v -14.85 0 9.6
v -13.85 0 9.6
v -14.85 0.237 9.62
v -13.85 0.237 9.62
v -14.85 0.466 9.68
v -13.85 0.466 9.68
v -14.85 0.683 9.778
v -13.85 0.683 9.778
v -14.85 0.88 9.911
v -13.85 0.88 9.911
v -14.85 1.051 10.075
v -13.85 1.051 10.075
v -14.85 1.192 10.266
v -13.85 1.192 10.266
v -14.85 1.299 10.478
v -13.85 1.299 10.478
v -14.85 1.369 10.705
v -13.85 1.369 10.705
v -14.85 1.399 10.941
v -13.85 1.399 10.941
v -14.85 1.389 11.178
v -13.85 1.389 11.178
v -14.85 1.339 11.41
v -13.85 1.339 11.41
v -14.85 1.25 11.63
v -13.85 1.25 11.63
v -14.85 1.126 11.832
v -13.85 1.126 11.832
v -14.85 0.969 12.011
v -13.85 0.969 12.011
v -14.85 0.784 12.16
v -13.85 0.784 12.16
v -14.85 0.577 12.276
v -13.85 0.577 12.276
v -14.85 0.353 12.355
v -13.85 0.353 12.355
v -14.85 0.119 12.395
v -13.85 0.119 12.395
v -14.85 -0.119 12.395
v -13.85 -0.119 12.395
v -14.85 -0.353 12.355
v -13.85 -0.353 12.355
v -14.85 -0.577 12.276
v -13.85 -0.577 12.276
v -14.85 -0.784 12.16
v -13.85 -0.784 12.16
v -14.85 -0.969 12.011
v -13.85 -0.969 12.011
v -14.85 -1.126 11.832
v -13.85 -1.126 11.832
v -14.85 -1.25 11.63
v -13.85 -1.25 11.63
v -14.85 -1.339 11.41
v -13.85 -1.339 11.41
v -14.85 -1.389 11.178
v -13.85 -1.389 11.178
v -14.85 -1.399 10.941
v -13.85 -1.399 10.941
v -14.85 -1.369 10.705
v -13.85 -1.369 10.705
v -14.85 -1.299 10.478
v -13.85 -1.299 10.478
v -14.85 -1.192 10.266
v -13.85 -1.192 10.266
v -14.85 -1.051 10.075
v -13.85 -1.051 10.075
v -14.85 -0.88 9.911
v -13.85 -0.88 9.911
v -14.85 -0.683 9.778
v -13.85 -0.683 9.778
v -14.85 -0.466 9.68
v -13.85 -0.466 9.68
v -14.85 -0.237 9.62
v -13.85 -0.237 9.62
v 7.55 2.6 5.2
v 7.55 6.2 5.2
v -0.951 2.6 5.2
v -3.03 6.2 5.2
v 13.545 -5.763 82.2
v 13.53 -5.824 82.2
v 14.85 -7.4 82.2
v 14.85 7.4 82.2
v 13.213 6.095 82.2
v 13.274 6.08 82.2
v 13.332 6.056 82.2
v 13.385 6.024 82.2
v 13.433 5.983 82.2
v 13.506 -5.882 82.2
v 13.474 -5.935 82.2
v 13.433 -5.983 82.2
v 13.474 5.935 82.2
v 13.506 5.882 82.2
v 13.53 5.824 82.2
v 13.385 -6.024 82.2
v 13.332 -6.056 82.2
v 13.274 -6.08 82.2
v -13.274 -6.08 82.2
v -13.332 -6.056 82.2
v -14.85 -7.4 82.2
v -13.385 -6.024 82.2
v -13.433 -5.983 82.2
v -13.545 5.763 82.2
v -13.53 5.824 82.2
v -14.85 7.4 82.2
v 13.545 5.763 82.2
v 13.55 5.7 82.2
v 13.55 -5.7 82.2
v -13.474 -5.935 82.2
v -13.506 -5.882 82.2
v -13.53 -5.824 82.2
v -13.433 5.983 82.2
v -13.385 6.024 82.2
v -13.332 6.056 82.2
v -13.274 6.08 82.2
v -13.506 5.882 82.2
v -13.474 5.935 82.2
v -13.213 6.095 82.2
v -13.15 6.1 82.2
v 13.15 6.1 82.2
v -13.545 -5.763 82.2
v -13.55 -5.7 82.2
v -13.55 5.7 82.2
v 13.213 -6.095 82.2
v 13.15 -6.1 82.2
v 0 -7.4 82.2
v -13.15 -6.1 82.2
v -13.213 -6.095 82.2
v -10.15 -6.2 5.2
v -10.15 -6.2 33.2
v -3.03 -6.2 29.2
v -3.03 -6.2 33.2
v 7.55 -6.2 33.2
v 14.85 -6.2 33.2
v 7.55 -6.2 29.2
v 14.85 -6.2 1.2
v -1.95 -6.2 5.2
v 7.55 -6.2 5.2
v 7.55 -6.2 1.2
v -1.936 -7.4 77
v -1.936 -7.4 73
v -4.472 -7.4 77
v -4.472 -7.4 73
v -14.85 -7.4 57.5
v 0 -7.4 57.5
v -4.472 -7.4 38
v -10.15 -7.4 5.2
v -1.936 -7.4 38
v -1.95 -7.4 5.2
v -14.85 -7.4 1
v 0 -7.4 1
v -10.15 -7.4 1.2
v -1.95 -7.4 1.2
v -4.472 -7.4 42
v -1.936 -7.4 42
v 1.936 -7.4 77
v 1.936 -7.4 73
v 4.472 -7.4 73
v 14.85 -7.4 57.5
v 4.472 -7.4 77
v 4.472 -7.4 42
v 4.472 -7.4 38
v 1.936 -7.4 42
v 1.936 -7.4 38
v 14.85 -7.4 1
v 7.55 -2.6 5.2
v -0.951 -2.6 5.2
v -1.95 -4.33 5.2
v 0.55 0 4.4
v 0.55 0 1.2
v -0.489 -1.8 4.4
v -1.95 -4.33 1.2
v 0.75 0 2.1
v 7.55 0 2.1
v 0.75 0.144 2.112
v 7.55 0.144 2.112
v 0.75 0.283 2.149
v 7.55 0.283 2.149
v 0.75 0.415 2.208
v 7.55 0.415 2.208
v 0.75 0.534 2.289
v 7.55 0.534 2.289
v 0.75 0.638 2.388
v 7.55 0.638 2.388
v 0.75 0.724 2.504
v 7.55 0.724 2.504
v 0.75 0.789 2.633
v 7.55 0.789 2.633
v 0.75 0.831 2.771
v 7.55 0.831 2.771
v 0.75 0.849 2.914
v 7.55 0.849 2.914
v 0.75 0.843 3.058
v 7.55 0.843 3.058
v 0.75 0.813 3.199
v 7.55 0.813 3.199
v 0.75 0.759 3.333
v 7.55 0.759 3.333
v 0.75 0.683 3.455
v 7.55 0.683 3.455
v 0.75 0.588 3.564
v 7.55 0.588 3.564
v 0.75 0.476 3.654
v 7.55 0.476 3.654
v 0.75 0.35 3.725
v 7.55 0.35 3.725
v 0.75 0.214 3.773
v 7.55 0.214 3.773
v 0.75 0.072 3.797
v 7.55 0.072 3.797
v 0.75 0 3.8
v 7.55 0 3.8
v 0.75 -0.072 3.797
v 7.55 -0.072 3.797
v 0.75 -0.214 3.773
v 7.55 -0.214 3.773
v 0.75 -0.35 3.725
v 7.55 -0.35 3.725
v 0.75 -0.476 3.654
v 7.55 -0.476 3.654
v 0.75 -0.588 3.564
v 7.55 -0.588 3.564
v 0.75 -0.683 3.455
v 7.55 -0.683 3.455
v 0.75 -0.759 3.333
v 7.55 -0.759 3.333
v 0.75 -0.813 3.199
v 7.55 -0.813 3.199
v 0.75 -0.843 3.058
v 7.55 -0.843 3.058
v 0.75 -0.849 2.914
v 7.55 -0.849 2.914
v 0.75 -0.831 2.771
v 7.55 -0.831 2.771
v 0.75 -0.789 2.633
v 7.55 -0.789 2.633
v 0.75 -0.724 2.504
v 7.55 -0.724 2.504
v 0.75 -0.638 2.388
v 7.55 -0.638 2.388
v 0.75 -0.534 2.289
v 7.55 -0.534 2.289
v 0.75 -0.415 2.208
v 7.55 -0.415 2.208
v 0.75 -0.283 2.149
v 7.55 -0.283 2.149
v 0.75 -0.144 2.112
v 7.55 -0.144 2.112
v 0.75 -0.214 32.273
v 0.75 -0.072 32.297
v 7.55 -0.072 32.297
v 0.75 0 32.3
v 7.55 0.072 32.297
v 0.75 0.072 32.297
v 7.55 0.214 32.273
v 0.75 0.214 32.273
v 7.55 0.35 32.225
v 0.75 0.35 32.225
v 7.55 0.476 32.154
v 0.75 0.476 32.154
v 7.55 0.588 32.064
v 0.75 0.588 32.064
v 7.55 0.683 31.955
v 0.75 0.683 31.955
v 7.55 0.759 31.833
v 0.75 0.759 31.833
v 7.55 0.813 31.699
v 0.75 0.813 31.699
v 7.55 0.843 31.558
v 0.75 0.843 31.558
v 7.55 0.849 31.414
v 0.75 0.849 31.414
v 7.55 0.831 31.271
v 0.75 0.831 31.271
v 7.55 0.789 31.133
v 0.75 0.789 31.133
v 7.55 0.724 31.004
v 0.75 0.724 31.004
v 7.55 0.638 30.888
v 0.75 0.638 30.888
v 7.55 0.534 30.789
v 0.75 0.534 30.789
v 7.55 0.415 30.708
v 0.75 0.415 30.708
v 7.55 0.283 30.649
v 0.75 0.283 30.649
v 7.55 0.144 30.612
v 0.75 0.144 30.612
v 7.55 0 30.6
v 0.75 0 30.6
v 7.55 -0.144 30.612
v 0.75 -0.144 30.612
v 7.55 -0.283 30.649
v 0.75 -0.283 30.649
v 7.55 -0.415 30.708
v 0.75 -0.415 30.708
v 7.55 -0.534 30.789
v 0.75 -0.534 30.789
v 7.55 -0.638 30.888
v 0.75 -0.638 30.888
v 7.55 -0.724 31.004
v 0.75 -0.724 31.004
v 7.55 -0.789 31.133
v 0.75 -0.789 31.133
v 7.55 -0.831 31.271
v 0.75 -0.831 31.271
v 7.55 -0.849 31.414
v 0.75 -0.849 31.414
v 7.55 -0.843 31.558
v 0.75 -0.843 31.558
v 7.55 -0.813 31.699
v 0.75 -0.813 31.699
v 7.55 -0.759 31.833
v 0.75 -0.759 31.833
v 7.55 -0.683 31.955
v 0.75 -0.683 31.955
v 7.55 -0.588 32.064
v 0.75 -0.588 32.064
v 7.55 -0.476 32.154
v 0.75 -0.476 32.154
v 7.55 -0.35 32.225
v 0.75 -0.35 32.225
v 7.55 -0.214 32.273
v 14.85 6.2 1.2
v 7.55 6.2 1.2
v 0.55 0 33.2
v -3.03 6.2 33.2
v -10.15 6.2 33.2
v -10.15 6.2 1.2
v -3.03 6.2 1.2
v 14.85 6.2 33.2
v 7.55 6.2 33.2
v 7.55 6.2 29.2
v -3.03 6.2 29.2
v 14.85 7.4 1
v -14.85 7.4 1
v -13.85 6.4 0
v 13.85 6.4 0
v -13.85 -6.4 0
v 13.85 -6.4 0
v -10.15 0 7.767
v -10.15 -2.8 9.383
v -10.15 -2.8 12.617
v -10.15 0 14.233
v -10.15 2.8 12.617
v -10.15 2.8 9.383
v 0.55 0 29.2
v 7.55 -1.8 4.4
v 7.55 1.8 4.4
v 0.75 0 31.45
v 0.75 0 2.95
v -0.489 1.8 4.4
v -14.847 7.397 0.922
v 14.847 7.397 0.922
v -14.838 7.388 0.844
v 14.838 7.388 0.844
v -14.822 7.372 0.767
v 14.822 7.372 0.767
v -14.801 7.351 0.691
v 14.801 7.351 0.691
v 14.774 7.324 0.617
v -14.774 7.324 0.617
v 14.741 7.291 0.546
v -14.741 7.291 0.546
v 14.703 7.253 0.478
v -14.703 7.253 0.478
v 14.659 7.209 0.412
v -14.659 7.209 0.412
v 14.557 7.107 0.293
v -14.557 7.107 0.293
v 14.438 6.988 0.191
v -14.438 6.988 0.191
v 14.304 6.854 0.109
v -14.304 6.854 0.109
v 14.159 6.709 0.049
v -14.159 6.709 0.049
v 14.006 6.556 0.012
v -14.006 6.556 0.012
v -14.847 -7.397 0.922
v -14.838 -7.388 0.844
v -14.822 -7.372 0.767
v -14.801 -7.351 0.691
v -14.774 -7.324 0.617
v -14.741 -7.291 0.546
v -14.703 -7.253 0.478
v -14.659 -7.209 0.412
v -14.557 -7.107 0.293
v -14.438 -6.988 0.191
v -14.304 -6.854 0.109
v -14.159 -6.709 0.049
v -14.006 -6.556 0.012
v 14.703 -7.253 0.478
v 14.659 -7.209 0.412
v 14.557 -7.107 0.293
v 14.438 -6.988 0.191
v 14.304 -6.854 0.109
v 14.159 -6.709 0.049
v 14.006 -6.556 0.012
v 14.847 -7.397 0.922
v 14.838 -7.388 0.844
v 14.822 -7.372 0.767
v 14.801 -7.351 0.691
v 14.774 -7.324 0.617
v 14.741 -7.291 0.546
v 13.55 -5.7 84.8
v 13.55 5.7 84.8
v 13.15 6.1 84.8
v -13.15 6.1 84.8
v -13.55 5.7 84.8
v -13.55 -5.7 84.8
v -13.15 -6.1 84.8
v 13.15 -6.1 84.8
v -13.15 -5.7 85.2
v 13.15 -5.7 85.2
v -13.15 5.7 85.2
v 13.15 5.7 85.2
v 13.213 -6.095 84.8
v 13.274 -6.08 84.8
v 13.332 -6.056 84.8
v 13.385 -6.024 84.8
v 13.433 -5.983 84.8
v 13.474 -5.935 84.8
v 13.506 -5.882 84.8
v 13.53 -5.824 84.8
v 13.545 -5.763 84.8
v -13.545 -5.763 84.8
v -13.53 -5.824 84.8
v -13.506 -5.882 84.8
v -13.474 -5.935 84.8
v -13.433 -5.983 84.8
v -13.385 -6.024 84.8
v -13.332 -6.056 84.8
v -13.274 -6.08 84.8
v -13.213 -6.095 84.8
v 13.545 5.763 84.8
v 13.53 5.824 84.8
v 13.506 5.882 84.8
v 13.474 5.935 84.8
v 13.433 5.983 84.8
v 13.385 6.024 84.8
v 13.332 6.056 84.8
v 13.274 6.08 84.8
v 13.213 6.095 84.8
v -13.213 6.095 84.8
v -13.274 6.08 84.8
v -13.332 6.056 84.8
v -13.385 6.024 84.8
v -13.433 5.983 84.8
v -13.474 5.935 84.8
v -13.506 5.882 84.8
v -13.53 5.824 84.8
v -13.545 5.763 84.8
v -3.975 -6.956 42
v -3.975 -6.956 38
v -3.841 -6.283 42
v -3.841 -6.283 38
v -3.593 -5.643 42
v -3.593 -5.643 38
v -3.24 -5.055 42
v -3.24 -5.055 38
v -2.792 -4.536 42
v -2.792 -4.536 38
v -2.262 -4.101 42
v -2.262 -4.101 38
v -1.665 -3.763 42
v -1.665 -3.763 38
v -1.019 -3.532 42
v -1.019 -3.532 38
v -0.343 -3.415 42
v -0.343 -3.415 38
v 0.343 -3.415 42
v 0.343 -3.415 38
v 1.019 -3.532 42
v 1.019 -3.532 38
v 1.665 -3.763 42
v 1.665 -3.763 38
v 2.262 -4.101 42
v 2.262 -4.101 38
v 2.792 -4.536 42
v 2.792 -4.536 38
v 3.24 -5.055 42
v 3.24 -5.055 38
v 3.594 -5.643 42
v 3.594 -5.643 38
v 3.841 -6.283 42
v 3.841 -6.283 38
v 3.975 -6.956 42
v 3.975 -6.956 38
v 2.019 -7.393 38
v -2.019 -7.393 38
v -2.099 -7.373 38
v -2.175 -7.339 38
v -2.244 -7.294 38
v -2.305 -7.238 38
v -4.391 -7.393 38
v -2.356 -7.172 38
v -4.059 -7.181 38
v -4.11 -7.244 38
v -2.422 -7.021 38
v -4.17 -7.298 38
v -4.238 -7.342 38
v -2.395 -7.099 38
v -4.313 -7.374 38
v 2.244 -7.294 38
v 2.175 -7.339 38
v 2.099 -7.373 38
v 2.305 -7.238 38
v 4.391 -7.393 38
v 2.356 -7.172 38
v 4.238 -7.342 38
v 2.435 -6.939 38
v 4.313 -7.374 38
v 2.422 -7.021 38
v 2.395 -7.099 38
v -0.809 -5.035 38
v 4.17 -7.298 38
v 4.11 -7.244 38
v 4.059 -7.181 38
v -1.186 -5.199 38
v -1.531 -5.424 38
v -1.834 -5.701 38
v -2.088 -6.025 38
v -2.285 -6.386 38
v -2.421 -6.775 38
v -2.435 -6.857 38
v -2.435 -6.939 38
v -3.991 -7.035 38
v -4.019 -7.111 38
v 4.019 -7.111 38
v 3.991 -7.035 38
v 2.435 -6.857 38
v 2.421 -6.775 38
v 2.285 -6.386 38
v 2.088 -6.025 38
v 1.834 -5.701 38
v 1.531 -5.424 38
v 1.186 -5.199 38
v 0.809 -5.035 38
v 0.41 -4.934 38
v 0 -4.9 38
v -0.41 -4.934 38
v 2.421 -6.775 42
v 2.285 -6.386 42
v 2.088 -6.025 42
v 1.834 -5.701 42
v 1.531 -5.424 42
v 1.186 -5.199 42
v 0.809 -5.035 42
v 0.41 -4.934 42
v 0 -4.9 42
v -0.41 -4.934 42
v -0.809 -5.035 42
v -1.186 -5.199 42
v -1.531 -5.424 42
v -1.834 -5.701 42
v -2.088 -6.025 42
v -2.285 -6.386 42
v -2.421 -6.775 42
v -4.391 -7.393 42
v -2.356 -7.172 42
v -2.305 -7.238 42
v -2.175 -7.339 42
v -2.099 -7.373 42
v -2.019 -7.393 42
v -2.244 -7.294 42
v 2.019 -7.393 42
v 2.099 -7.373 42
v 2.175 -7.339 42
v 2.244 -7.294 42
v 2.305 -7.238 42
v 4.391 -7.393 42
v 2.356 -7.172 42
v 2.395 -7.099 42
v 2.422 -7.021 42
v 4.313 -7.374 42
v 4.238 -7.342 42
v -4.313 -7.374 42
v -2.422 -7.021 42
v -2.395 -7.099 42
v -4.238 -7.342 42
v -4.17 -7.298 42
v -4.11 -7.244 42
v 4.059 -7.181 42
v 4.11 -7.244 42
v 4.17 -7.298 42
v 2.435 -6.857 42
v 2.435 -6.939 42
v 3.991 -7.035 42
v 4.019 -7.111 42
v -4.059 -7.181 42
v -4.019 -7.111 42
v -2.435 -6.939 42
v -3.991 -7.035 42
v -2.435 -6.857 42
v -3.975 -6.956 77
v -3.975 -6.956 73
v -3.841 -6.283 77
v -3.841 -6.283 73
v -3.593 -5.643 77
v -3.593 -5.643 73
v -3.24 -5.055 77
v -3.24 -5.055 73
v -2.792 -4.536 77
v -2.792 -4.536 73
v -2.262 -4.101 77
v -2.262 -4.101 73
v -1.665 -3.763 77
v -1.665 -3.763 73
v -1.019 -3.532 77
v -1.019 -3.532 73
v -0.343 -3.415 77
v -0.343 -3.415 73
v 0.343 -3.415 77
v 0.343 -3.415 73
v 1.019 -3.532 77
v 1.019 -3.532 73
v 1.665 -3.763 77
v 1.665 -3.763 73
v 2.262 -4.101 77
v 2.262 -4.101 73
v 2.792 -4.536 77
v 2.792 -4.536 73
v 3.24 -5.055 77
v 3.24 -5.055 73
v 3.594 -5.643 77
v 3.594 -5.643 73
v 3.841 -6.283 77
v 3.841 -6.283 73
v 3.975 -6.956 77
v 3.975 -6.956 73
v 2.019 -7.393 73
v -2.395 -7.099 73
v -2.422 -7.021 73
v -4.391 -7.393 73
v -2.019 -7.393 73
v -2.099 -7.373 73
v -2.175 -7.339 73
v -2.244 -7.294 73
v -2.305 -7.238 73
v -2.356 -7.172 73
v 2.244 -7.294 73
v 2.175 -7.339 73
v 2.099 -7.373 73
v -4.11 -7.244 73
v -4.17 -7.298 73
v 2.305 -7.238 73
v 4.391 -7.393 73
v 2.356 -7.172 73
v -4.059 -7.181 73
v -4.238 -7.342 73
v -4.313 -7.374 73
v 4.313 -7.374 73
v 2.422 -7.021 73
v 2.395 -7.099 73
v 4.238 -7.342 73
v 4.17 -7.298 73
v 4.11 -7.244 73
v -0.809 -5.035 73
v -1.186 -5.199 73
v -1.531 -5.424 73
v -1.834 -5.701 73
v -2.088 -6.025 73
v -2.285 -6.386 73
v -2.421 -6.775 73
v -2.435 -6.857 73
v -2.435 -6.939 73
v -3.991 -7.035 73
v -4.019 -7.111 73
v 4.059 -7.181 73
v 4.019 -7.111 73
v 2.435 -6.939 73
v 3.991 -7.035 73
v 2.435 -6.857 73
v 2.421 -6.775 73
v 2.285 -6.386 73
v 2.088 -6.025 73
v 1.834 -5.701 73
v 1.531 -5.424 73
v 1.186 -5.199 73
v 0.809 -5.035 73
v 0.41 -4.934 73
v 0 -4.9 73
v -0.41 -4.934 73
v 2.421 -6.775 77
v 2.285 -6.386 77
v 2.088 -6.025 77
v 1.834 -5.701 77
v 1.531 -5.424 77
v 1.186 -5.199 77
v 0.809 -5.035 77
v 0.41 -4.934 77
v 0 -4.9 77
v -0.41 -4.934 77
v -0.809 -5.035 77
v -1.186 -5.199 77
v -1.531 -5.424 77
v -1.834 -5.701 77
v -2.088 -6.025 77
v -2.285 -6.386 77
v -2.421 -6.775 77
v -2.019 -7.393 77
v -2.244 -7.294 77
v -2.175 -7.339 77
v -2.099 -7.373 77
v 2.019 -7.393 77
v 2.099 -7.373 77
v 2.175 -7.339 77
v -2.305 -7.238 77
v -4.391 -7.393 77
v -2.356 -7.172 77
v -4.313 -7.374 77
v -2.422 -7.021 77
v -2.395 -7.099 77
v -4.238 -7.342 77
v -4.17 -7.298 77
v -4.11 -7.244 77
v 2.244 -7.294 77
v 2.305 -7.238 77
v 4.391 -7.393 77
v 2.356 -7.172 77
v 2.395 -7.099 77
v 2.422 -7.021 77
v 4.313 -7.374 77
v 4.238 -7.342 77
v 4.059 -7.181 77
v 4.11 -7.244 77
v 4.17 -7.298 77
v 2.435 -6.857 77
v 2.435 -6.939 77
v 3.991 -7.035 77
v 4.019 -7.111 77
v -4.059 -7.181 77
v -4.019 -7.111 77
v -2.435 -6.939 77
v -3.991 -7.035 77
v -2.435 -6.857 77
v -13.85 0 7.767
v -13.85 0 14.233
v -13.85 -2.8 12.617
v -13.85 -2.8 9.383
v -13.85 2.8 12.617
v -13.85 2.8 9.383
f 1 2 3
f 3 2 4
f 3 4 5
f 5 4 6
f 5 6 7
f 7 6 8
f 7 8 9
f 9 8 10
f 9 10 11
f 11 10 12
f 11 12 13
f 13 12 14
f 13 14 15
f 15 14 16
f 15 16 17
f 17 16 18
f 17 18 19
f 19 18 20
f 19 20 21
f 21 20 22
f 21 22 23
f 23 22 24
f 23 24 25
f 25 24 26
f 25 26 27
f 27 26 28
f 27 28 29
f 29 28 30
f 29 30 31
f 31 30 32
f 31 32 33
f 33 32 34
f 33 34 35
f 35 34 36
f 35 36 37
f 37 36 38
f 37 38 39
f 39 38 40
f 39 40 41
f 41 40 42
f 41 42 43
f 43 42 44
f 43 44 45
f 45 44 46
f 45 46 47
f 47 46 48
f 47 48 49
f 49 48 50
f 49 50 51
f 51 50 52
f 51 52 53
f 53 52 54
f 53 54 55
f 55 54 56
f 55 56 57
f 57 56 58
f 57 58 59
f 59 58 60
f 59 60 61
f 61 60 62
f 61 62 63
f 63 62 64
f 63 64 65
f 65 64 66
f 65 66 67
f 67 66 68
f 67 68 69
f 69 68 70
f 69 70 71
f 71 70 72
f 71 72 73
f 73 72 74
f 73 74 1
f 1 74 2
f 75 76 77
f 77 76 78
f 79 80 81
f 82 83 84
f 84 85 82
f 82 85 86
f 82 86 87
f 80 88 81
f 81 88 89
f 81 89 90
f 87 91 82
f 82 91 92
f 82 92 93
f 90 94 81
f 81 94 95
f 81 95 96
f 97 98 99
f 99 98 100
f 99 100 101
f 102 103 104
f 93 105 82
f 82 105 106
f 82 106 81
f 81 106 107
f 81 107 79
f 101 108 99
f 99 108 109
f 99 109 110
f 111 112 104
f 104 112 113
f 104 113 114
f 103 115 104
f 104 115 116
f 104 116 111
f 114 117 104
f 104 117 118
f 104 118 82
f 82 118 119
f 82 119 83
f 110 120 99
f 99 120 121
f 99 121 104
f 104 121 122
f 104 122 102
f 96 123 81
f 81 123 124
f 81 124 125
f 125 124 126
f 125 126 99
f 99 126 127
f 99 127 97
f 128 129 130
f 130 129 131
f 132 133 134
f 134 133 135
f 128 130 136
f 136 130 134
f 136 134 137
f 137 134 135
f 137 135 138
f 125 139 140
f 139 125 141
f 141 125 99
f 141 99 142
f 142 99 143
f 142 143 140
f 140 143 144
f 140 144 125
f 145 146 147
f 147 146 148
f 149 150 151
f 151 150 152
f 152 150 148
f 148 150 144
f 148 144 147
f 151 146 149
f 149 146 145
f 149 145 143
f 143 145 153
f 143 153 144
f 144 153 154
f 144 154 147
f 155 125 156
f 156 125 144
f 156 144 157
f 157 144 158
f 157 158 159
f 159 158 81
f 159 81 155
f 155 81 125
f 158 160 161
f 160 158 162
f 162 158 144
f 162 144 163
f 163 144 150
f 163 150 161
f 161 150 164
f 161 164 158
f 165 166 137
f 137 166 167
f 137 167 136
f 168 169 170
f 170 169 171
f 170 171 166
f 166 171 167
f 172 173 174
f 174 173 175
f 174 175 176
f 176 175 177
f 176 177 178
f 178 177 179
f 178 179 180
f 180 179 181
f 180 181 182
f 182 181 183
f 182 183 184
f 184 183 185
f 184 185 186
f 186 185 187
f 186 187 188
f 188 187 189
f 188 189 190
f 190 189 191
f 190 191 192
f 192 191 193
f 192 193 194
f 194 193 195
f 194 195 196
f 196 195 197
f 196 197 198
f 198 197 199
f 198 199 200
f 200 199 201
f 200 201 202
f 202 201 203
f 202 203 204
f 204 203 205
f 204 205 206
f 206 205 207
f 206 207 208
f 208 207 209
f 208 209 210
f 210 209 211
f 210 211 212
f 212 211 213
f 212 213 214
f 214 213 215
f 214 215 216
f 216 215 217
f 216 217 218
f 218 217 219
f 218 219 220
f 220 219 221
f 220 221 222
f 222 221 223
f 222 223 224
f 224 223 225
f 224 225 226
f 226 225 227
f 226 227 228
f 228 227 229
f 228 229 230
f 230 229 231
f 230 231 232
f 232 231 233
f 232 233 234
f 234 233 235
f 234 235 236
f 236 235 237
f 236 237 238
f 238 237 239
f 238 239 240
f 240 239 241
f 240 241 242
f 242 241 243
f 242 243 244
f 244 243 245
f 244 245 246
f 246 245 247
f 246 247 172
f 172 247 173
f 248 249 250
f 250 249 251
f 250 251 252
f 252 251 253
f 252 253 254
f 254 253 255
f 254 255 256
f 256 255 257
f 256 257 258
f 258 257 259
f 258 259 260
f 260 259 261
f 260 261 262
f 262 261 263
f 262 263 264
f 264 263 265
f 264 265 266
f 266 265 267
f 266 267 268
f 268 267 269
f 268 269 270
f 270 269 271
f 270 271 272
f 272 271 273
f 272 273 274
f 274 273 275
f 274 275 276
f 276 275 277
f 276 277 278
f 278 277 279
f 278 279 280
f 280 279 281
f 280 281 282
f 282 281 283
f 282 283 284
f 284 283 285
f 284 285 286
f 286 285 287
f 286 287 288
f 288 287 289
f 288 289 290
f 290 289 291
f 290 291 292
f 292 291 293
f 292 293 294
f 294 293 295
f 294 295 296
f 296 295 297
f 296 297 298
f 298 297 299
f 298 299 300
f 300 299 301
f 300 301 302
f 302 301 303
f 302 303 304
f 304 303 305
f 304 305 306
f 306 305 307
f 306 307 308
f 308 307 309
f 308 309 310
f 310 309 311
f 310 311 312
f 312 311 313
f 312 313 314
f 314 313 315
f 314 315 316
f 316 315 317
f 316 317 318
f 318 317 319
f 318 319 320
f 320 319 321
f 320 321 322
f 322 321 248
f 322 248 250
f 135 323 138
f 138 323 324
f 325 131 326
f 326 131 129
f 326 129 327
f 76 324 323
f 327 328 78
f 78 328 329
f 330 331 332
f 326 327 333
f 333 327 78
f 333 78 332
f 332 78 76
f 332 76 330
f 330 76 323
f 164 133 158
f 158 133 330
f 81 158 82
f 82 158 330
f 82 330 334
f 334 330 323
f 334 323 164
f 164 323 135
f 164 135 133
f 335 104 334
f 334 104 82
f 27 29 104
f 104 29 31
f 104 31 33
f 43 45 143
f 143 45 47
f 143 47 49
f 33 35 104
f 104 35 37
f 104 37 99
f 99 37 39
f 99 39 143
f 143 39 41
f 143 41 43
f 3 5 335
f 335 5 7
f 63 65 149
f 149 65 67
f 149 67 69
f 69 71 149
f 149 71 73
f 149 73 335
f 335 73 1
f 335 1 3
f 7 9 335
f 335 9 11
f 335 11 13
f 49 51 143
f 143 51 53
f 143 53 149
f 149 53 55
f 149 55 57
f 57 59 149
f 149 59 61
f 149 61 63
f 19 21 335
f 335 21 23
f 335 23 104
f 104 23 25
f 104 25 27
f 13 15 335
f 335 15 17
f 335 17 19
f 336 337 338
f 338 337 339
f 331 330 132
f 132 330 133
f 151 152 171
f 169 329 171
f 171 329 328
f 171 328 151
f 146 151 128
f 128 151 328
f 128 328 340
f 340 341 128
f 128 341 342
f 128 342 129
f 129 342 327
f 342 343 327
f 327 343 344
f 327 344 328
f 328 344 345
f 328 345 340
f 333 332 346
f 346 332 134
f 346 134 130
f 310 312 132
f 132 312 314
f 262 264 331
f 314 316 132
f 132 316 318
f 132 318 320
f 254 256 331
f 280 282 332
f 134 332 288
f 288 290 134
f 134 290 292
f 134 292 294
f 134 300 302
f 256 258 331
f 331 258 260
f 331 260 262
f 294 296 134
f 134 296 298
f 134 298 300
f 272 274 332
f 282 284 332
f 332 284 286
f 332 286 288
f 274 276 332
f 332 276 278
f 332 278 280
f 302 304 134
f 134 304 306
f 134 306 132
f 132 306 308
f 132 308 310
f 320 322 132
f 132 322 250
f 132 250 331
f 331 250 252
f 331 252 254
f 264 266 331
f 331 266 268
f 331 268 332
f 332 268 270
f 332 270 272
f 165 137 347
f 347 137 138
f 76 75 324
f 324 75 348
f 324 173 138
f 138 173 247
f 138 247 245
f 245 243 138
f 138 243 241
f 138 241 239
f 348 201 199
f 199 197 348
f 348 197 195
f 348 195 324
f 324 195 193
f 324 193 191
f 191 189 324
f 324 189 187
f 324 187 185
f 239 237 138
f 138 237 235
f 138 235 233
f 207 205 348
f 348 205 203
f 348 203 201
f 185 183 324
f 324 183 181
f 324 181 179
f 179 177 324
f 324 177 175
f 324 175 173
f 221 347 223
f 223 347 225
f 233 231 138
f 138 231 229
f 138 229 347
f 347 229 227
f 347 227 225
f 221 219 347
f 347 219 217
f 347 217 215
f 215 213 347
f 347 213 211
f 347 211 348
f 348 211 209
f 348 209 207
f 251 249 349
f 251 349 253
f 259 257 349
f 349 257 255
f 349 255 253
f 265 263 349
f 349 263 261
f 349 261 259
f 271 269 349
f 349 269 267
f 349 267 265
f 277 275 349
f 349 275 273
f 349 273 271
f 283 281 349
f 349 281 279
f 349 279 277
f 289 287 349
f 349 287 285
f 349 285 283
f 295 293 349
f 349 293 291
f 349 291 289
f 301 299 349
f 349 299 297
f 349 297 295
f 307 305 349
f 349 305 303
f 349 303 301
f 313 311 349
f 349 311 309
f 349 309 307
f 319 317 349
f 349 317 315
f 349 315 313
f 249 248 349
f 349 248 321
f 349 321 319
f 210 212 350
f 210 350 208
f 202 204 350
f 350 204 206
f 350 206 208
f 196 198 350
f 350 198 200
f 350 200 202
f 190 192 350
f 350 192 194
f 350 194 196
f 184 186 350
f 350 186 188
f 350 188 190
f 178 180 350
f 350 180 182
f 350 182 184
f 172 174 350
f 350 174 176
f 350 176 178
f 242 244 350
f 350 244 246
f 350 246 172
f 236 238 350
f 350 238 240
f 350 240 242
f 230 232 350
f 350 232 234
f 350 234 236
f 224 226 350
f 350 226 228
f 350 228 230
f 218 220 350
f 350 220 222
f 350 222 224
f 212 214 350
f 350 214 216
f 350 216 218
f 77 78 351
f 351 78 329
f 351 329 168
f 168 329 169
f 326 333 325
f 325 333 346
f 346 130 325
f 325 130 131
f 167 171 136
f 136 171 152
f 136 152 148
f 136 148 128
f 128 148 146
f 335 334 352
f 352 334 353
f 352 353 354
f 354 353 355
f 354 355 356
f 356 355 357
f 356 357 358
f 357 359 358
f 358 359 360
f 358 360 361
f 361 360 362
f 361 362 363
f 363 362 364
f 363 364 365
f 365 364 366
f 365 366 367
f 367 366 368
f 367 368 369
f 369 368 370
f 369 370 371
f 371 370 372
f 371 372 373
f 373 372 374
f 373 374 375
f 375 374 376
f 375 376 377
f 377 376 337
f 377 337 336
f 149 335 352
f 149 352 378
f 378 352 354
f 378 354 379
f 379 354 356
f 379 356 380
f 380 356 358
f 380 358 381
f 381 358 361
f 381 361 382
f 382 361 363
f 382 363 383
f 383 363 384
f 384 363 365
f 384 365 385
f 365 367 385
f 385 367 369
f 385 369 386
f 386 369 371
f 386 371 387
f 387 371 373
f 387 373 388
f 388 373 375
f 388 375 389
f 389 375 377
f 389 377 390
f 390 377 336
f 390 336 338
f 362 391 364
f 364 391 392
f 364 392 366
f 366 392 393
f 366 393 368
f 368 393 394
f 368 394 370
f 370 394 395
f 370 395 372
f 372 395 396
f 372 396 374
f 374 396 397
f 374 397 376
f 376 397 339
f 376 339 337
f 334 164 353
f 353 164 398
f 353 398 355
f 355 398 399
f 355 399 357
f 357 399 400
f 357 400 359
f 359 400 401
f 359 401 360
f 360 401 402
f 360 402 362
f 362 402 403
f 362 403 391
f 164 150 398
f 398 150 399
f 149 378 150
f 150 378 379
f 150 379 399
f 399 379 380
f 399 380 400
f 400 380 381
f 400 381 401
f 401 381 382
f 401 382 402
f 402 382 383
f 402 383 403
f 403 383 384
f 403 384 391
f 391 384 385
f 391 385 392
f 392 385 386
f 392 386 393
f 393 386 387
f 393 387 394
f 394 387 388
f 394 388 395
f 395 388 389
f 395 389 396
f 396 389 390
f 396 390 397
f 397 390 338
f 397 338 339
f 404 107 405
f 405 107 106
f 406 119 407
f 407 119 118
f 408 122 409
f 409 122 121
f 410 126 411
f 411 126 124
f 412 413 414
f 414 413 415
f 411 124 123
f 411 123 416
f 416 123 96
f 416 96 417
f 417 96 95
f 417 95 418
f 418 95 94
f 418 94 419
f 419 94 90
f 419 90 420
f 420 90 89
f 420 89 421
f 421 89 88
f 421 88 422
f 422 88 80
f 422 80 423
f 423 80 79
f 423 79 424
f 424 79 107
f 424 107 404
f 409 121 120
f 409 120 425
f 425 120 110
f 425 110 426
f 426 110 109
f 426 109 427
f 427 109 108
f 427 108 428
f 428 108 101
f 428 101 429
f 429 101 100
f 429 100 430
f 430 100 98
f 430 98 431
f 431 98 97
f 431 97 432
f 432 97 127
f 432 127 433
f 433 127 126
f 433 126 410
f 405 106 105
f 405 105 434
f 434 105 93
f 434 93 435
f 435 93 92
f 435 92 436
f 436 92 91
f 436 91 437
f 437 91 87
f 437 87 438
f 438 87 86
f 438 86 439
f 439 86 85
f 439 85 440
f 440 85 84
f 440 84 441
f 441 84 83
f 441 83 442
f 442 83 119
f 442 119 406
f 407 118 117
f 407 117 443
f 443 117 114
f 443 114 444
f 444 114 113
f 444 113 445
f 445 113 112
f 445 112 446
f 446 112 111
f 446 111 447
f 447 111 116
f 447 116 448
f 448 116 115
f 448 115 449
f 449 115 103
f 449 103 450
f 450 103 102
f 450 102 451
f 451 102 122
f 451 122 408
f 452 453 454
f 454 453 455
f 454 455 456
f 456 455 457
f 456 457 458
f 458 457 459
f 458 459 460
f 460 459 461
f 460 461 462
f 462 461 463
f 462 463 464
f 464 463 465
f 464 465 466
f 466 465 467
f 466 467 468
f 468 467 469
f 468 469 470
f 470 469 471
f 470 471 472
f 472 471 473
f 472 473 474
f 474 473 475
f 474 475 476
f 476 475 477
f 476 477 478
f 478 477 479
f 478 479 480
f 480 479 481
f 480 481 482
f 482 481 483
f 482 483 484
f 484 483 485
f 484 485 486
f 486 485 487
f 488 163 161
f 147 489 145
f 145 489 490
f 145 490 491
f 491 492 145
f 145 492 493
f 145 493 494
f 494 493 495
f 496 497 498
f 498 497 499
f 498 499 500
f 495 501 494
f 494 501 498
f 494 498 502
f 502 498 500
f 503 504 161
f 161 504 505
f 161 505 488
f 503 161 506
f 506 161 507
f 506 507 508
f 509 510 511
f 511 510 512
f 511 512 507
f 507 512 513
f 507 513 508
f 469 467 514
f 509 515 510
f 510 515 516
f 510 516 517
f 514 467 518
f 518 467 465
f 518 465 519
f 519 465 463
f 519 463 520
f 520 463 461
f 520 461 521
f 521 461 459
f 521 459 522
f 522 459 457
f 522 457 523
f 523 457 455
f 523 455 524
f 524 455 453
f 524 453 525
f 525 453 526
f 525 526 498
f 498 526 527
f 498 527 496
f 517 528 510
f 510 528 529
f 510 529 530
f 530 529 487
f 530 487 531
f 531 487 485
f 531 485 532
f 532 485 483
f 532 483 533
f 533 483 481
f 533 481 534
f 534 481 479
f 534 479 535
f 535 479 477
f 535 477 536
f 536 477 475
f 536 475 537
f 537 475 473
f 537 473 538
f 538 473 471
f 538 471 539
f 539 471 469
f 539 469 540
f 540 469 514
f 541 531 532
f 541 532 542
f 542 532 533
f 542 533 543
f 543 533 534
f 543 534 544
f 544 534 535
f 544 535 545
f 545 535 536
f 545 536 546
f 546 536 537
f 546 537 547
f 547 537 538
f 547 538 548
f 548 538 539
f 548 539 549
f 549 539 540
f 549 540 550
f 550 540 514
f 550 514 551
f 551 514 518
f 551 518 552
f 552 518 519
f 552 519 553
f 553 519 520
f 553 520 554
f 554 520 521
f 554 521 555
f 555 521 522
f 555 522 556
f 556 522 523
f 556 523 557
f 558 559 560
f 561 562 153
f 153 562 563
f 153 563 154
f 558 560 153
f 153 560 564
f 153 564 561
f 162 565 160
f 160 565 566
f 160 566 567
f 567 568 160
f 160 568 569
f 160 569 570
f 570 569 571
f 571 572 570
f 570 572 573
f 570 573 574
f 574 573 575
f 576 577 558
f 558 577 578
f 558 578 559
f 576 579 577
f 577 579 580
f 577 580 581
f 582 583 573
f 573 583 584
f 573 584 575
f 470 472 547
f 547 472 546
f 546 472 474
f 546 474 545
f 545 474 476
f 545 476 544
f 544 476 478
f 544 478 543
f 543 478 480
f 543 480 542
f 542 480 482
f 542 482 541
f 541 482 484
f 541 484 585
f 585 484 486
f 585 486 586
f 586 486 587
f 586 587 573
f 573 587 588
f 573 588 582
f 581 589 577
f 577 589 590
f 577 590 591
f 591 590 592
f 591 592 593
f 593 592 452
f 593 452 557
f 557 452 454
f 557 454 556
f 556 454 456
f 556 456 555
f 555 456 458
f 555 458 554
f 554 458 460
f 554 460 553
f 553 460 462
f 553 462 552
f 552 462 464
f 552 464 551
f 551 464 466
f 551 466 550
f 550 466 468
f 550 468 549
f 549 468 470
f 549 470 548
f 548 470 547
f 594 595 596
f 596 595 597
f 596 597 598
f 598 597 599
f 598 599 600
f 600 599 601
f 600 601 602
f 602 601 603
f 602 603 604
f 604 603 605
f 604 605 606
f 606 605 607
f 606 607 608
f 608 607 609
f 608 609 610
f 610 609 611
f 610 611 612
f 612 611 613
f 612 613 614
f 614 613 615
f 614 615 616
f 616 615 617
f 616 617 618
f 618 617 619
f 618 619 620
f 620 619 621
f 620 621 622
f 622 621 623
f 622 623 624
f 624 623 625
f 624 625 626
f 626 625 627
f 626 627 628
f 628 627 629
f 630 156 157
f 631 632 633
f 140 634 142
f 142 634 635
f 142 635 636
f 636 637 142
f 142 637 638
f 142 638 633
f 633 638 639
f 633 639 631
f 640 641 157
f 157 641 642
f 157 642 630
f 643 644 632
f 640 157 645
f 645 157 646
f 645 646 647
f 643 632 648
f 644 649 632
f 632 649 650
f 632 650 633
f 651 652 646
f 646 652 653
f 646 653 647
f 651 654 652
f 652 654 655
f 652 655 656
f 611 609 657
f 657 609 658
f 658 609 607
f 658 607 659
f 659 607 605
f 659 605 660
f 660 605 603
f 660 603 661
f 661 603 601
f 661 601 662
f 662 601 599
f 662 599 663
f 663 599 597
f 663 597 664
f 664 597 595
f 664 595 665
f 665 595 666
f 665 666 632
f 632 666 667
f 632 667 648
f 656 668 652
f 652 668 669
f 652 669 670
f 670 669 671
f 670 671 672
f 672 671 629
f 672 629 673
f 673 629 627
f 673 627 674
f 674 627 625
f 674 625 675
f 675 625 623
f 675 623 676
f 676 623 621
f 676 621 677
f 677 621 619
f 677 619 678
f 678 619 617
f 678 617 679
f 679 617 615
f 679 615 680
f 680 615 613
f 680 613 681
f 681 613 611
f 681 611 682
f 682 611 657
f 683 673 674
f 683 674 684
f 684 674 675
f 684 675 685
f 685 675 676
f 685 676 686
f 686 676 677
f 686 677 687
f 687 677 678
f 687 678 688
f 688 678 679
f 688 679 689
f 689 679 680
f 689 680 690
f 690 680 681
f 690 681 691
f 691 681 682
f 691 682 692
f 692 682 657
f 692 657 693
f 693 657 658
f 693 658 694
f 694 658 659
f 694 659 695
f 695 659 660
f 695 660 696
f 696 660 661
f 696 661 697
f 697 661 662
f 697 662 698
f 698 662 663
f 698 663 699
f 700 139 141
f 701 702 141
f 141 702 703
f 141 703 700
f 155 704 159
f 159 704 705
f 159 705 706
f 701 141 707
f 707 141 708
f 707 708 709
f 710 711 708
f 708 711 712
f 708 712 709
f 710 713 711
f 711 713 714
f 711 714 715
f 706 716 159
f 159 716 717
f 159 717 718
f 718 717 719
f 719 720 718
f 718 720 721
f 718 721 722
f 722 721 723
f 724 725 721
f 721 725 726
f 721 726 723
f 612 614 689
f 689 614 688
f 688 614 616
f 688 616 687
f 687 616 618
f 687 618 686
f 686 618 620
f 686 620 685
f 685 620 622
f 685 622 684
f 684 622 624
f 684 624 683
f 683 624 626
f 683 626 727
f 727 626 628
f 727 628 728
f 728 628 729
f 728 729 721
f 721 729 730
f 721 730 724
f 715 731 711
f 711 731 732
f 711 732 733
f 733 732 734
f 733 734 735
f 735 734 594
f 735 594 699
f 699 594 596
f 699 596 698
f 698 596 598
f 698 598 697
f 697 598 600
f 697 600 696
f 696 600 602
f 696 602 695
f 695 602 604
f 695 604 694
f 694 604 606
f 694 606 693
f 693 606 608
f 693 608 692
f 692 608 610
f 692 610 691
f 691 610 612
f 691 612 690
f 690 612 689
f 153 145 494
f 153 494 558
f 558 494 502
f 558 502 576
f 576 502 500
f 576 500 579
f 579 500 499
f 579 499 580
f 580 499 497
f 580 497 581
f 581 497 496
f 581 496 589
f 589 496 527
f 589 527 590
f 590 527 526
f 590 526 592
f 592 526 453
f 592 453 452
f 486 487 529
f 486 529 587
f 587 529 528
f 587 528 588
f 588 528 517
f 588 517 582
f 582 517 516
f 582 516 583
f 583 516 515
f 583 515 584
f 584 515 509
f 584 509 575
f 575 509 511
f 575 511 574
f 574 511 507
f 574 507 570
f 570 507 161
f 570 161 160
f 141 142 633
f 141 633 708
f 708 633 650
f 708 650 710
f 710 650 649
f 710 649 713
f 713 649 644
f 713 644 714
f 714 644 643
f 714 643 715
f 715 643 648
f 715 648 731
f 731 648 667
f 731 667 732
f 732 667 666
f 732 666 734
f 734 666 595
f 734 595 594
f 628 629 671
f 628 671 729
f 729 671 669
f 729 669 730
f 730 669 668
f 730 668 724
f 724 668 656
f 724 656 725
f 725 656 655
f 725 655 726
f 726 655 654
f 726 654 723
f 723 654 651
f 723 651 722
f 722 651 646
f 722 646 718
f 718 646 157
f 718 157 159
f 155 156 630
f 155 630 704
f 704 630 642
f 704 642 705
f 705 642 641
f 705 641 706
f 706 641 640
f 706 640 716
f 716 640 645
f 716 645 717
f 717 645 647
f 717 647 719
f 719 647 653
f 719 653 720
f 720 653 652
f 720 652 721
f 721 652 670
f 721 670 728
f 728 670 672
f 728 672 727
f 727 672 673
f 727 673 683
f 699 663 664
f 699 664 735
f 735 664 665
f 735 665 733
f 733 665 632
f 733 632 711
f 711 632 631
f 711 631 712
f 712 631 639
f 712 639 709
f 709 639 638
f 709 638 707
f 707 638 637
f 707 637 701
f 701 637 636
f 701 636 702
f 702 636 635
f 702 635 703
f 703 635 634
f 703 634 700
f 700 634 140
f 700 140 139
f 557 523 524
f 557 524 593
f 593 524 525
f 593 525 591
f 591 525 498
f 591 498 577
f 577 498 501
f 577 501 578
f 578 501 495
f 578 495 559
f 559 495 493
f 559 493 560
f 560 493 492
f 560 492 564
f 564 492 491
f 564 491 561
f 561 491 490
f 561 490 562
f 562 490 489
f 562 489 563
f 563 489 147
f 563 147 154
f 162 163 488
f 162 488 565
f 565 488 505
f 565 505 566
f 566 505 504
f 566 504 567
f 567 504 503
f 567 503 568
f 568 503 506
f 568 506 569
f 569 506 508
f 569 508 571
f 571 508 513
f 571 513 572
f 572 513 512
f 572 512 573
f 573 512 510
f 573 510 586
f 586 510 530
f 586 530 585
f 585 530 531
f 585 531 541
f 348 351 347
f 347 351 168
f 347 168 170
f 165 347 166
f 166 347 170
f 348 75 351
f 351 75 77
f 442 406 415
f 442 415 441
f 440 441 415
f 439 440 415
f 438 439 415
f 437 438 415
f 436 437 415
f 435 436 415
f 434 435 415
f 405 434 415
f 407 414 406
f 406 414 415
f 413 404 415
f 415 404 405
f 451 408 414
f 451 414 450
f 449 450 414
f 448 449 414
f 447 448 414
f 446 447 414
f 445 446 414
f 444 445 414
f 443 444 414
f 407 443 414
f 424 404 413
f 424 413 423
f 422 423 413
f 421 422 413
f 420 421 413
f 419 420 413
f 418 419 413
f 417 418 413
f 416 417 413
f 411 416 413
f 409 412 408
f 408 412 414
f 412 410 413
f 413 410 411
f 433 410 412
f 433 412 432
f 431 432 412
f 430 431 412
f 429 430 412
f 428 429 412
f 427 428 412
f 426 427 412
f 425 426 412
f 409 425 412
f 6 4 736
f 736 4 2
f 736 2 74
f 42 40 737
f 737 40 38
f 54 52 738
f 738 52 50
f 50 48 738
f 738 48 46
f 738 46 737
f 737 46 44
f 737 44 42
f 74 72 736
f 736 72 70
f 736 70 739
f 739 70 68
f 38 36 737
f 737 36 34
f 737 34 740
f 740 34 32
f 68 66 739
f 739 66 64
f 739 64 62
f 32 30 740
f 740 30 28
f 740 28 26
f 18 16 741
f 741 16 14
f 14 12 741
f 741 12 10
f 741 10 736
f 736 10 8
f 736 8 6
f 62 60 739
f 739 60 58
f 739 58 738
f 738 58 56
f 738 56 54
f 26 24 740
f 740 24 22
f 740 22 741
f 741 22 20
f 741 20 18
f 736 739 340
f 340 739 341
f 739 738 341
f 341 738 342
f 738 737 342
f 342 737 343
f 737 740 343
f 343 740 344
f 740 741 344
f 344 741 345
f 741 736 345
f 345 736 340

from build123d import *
from OCP.BRepFilletAPI import BRepFilletAPI_MakeChamfer

# Parameters (mm, degrees)
IZIM1_W                     = 29.7
IZIM1_H                     = 14.8
Y_KSEKLIK_EKSTR_ZYON1_DEPTH = 82.2
IZIM2_W                     = 32
IZIM2_H                     = 12.4
KES_EKSTR_ZYON1_DEPTH       = 25
Y_KSEKLIK_EKSTR_ZYON2_START = -7.3
IZIM3_W                     = 4
IZIM3_H                     = 12.4
IZIM3_R                     = 0.85
Y_KSEKLIK_EKSTR_ZYON2_DEPTH = 7
Y_KSEKLIK_EKSTR_ZYON3_START = -0.2
IZIM4_R                     = 0.85
Y_KSEKLIK_EKSTR_ZYON3_DEPTH = 0.2
PAH1_SIZE                   = 3.579571669
PAH1_SIZE_2                 = 6.2
KES_EKSTR_ZYON2_DEPTH       = 3.2
KES_EKSTR_ZYON2_DEPTH_BACK  = 85.630505729
IZIM5_W                     = 8.2
IZIM5_H                     = 4
RADYUS1_R                   = 1
IZIM7_R                     = 1.4
KES_EKSTR_ZYON3_DEPTH       = 87.235723456
IZIM8_W                     = 27.1
IZIM8_H                     = 12.2
Y_KSEKLIK_EKSTR_ZYON4_DEPTH = 3
RADYUS2_R                   = 0.4
IZIM9_W                     = 1.5
IZIM9_H                     = 4
L_O_ALTMA1_COUNT            = 2
L_O_ALTMA1_PITCH            = 35
RADYUS3_R                   = 0.5
KES_EKSTR_ZYON4_REACH       = 90.406
IZIM10_W                    = 0.8
IZIM10_H                    = 3.2
PAH3_SIZE                   = 1
PAH4_SIZE                   = 0.4
KES_EKSTR_ZYON5_DEPTH       = 3.7


# Some blends are built 0.0001 mm under size
with BuildPart() as part:
    # Çizim1 → Yükseklik-Ekstrüzyon1 (new body)
    with BuildSketch(Plane.XY):
        Rectangle(IZIM1_W, IZIM1_H)
    extrude(amount=Y_KSEKLIK_EKSTR_ZYON1_DEPTH)

    # Çizim2 → Kes-Ekstrüzyon1 (cut)
    with BuildSketch(Plane(origin=(14.85, 0, 0), x_dir=(0, 0, -1), z_dir=(1, 0, 0))):
        with Locations((-17.2, 0)):
            Rectangle(IZIM2_W, IZIM2_H)
    extrude(amount=-KES_EKSTR_ZYON1_DEPTH, mode=Mode.SUBTRACT)

    # Çizim3 → Yükseklik-Ekstrüzyon2 (add)
    # profile 1 of 2: a face of its own
    with BuildSketch(Plane(origin=(14.85, 0, 0), x_dir=(0, 0, -1), z_dir=(1, 0, 0)).offset(Y_KSEKLIK_EKSTR_ZYON2_START)):
        with Locations((-31.2, 0)):
            Rectangle(IZIM3_W, IZIM3_H)
        with Locations((-31.45, 0)):
            Circle(IZIM3_R, mode=Mode.SUBTRACT)
    # profile 2 of 2: a face of its own
    with BuildSketch(Plane(origin=(14.85, 0, 0), x_dir=(0, 0, -1), z_dir=(1, 0, 0)).offset(Y_KSEKLIK_EKSTR_ZYON2_START)):
        with Locations((-3.2, 0)):
            Rectangle(IZIM3_W, IZIM3_H)
        with Locations(Location((-2.95, 0, 0), (0, 0, 180))):
            Circle(IZIM3_R, mode=Mode.SUBTRACT)
    extrude(amount=-Y_KSEKLIK_EKSTR_ZYON2_DEPTH)

    # Çizim4 → Yükseklik-Ekstrüzyon3 (add)
    with BuildSketch(Plane.ZY.offset(-0.55).offset(Y_KSEKLIK_EKSTR_ZYON3_START)):
        with Locations(Location((31.45, 0, 0), (0, 0, 180))):
            Circle(IZIM4_R)
        with Locations((2.95, 0)):
            Circle(IZIM4_R)
    extrude(amount=Y_KSEKLIK_EKSTR_ZYON3_DEPTH)

    # Pah1
    pah1_edges_1 = [part.edges().sort_by_distance(p)[0] for p in [
        (0.55, -6.2, 3.2),
    ]]
    pah1_side_1 = [part.faces().sort_by_distance(p)[0] for p in [
        (0.478408567, -6.2, 3.2),
    ]]
    pah1_edges_2 = [part.edges().sort_by_distance(p)[0] for p in [
        (0.55, 6.2, 3.2),
    ]]
    pah1_side_2 = [part.faces().sort_by_distance(p)[0] for p in [
        (0.478408567, 6.2, 3.2),
    ]]
    pah1_edges_3 = [part.edges().sort_by_distance(p)[0] for p in [
        (0.55, -6.2, 31.2),
    ]]
    pah1_side_3 = [part.faces().sort_by_distance(p)[0] for p in [
        (0.478408567, -6.2, 31.2),
    ]]
    pah1_edges_4 = [part.edges().sort_by_distance(p)[0] for p in [
        (0.55, 6.2, 31.2),
    ]]
    pah1_side_4 = [part.faces().sort_by_distance(p)[0] for p in [
        (0.478408567, 6.2, 31.2),
    ]]
    pah1 = BRepFilletAPI_MakeChamfer(part.part.solid().wrapped)
    for e in pah1_edges_1:
        pah1.Add(PAH1_SIZE - 0.0001, PAH1_SIZE_2 - 0.0001, e.wrapped, pah1_side_1[0].wrapped)
    for e in pah1_edges_2:
        pah1.Add(PAH1_SIZE - 0.0001, PAH1_SIZE_2 - 0.0001, e.wrapped, pah1_side_2[0].wrapped)
    for e in pah1_edges_3:
        pah1.Add(PAH1_SIZE - 0.0001, PAH1_SIZE_2 - 0.0001, e.wrapped, pah1_side_3[0].wrapped)
    for e in pah1_edges_4:
        pah1.Add(PAH1_SIZE - 0.0001, PAH1_SIZE_2 - 0.0001, e.wrapped, pah1_side_4[0].wrapped)
    add(Compound.cast(pah1.Shape()), mode=Mode.REPLACE)  # a hair under: the kernel refuses the full size

    # Çizim5 → Kes-Ekstrüzyon2 (cut, two sides: drawn at the far end of the back side and taken through both)
    with BuildSketch(Plane(origin=(0, -6.2, 0), x_dir=(1, 0, 0), z_dir=(0, 1, 0)).offset(-KES_EKSTR_ZYON2_DEPTH_BACK)):
        with Locations((-6.05, -3.2)):
            Rectangle(IZIM5_W, IZIM5_H)
    extrude(amount=KES_EKSTR_ZYON2_DEPTH + KES_EKSTR_ZYON2_DEPTH_BACK, mode=Mode.SUBTRACT)

    # Radyus1
    radyus1_edges = [part.edges().sort_by_distance(p)[0] for p in [
        (0, -7.4, 0),
        (-14.85, 0, 0),
        (0, 7.4, 0),
        (14.85, 0, 0),
    ]]
    fillet(radyus1_edges, radius=RADYUS1_R)

    # Çizim7 → Kes-Ekstrüzyon3 (cut, through all)
    with BuildSketch(Plane(origin=(-10.15, 0, 0), x_dir=(0, 0, -1), z_dir=(1, 0, 0))):
        with Locations((-11, 0)):
            Circle(IZIM7_R)
    extrude(amount=-KES_EKSTR_ZYON3_DEPTH, mode=Mode.SUBTRACT)

    # Çizim8 → Yükseklik-Ekstrüzyon4 (add)
    with BuildSketch(Plane.XY.offset(82.2)):
        Rectangle(IZIM8_W, IZIM8_H)
    extrude(amount=Y_KSEKLIK_EKSTR_ZYON4_DEPTH)

    # Radyus2
    radyus2_edges = [part.edges().sort_by_distance(p)[0] for p in [
        (13.55, -6.1, 83.7),
        (13.55, 6.1, 83.7),
        (-13.55, 6.1, 83.7),
        (-13.55, -6.1, 83.7),
    ]]
    fillet(radyus2_edges, radius=RADYUS2_R)

    # Çizim9 → Kes-Döndür1 (revolve, cut)
    with BuildSketch(Plane.XZ.offset(7.4)):
        with Locations((3.25, 40)):
            Rectangle(IZIM9_W, IZIM9_H)
    kes_d_nd_r1 = revolve(axis=Axis((0, -7.4, 0), (0, 0, 1)), mode=Mode.SUBTRACT)

    # LÇoğaltma1: Kes-Döndür1 ×2
    with Locations(*[(0, 0, i * L_O_ALTMA1_PITCH) for i in range(1, L_O_ALTMA1_COUNT)]):
        add(kes_d_nd_r1, mode=Mode.SUBTRACT)

    # Radyus3
    radyus3_edges = [part.edges().sort_by_distance(p)[0] for p in [
        (2.5, -7.4, 40),
        (4, -7.4, 40),
        (-2.5, -7.4, 40),
        (-4, -7.4, 40),
        (4, -7.4, 75),
        (-4, -7.4, 75),
        (2.5, -7.4, 75),
        (-2.5, -7.4, 75),
    ]]
    fillet(radyus3_edges, radius=RADYUS3_R)

    # Çizim10 → Kes-Ekstrüzyon4 (cut, up to next)
    with BuildSketch(Plane(origin=(7.55, 0, 0), x_dir=(0, 0, -1), z_dir=(1, 0, 0)), mode=Mode.PRIVATE) as kes_ekstr_zyon4_sk1:
        with Locations((-4.8, 0)):
            Rectangle(IZIM10_W, IZIM10_H)
    kes_ekstr_zyon4_tool1 = extrude(kes_ekstr_zyon4_sk1.sketch, amount=-KES_EKSTR_ZYON4_REACH, mode=Mode.PRIVATE) & part.part
    add(kes_ekstr_zyon4_tool1.solids().sort_by_distance((7.55, 0, 4.8))[0], mode=Mode.SUBTRACT)

    # Pah3
    # the kernel refuses this chamfer: 1 mm, written as the material it takes off along each edge
    with BuildSketch(Plane(origin=(10.121682988, -1.6, 5.2), x_dir=(0, -0.9996219169112968, 0.027495876610586473), z_dir=(-1, 0, 0))) as pah3_piece_1_section:
        Polygon((PAH3_SIZE * 0.999621916911, -PAH3_SIZE * 0.0274958766106), (-PAH3_SIZE * 0.0274958766106, -PAH3_SIZE * 0.999621916911), (0, 0), align=None)
    pah3_piece_1 = extrude(amount=13.067057765, mode=Mode.PRIVATE)
    pah3_piece_1 = split(pah3_piece_1, bisect_by=Plane(origin=(3.588154105, -1.945718412, 4.4), z_dir=(0, 0, 1)), keep=Keep.TOP, mode=Mode.PRIVATE)
    add(pah3_piece_1, mode=Mode.SUBTRACT)
    with BuildSketch(Plane(origin=(10.121682988, 1.6, 5.2), x_dir=(0, 0.9996219169112968, 0.027495876610586487), z_dir=(-1, 0, 0))) as pah3_piece_2_section:
        Polygon((PAH3_SIZE * 0.999621916911, PAH3_SIZE * 0.0274958766106), (-PAH3_SIZE * 0.0274958766106, PAH3_SIZE * 0.999621916911), (0, 0), align=None)
    pah3_piece_2 = extrude(amount=13.067057765, mode=Mode.PRIVATE)
    pah3_piece_2 = split(pah3_piece_2, bisect_by=Plane(origin=(3.588154105, 1.945718412, 4.4), z_dir=(0, 0, 1)), keep=Keep.TOP, mode=Mode.PRIVATE)
    add(pah3_piece_2, mode=Mode.SUBTRACT)

    # Pah4
    pah4_edges = [part.edges().sort_by_distance(p)[0] for p in [
        (13.55, 0, 85.2),
        (0, -6.1, 85.2),
        (0, 6.1, 85.2),
        (-13.55, 0, 85.2),
        (-13.432842712, 5.982842712, 85.2),
        (13.432842712, 5.982842712, 85.2),
        (-13.432842712, -5.982842712, 85.2),
        (13.432842712, -5.982842712, 85.2),
    ]]
    chamfer(pah4_edges, length=PAH4_SIZE)

    # Çizim12 → Kes-Ekstrüzyon5 (cut)
    with BuildSketch(Plane(origin=(-10.15, 0, 0), x_dir=(0, 0, -1), z_dir=(1, 0, 0))):
        Polygon((-7.766838493, 0), (-9.383419246, 2.8), (-12.616580754, 2.8), (-14.233161507, 0), (-12.616580754, -2.8), (-9.383419246, -2.8), align=None)
    extrude(amount=-KES_EKSTR_ZYON5_DEPTH, mode=Mode.SUBTRACT)


solid = part.part
